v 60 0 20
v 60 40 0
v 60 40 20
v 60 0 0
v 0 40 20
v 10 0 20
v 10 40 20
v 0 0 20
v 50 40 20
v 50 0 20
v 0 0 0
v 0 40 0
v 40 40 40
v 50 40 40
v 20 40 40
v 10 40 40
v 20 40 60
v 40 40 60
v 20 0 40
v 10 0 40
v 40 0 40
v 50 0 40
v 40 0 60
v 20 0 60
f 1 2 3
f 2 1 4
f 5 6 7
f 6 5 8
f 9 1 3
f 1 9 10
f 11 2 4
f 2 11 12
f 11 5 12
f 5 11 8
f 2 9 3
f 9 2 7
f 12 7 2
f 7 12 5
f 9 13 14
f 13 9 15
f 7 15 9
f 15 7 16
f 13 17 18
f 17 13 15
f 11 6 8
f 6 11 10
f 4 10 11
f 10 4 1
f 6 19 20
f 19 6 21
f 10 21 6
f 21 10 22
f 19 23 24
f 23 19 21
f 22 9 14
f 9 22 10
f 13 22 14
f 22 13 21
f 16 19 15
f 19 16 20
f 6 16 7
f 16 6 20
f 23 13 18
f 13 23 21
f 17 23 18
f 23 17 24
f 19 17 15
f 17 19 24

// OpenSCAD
// Define dimensions for each layer
step_block_bottom_width = 60;
step_block_bottom_height = 20;
step_block_bottom_depth = 40;

step_block_middle_width = 40;
step_block_middle_height = 20;
step_block_middle_depth = 40;

step_block_top_width = 20;
step_block_top_height = 20;
step_block_top_depth = 40;

// Create the bottom layer
module step_block_bottom() {
    cube([step_block_bottom_width, step_block_bottom_depth, step_block_bottom_height]);
}

// Create the middle layer
module step_block_middle() {
    translate([10, 0, step_block_bottom_height]) // Centered horizontally and stacked vertically
        cube([step_block_middle_width, step_block_middle_depth, step_block_middle_height]);
}

// Create the top layer
module step_block_top() {
    translate([20, 0, step_block_bottom_height + step_block_middle_height]) // Centered horizontally and stacked vertically
        cube([step_block_top_width, step_block_top_depth, step_block_top_height]);
}

// Combine all layers to form the stepped block
module stepped_block() {
    step_block_bottom();
    step_block_middle();
    step_block_top();
}

// Render the stepped block
stepped_block();
